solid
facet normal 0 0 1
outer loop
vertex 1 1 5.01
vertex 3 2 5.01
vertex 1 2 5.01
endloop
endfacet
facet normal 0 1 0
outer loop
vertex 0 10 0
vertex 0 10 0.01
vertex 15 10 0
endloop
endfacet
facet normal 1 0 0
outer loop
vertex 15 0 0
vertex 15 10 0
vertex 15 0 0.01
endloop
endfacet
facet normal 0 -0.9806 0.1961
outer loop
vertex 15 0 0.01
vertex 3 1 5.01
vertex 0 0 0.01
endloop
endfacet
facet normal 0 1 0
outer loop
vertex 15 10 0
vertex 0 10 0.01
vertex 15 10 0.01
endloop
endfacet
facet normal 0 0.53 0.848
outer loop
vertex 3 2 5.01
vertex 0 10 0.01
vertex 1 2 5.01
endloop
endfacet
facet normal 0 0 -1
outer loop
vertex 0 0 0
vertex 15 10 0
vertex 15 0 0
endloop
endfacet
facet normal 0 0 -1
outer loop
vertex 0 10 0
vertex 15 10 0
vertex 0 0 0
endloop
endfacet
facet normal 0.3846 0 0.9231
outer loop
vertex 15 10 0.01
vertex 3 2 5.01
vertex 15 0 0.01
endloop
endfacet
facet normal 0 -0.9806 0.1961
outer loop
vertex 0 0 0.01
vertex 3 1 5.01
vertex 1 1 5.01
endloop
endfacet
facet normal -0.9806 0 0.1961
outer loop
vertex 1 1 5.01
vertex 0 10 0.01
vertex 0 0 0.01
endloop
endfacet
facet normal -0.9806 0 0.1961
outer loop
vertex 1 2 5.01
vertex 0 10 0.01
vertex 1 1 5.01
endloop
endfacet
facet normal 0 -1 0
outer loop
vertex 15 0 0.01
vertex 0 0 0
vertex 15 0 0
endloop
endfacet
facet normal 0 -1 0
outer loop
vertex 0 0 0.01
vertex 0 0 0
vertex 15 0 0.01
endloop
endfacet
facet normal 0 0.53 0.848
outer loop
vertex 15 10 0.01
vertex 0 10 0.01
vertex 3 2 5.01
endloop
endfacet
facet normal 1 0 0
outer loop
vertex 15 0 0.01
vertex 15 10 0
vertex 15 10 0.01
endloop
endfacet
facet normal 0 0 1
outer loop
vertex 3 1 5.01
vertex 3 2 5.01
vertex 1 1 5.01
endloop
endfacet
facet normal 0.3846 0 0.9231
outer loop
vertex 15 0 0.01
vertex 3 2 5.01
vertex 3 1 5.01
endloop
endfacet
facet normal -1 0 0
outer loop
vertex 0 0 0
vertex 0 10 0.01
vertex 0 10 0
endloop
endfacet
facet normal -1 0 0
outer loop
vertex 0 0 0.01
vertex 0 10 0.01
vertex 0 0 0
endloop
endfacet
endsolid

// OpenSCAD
base = [15, 10, 0.01];
top = [2, 1, 0.01];


hull() {
    cube(base);
    translate([1, 1, 5]) cube(top);
}

//hull() {
//cube(base);
//color("blue") translate([(base[0]-top[0])/2, (base[1]-top[1])/2, 5]) cube(top);
//}
